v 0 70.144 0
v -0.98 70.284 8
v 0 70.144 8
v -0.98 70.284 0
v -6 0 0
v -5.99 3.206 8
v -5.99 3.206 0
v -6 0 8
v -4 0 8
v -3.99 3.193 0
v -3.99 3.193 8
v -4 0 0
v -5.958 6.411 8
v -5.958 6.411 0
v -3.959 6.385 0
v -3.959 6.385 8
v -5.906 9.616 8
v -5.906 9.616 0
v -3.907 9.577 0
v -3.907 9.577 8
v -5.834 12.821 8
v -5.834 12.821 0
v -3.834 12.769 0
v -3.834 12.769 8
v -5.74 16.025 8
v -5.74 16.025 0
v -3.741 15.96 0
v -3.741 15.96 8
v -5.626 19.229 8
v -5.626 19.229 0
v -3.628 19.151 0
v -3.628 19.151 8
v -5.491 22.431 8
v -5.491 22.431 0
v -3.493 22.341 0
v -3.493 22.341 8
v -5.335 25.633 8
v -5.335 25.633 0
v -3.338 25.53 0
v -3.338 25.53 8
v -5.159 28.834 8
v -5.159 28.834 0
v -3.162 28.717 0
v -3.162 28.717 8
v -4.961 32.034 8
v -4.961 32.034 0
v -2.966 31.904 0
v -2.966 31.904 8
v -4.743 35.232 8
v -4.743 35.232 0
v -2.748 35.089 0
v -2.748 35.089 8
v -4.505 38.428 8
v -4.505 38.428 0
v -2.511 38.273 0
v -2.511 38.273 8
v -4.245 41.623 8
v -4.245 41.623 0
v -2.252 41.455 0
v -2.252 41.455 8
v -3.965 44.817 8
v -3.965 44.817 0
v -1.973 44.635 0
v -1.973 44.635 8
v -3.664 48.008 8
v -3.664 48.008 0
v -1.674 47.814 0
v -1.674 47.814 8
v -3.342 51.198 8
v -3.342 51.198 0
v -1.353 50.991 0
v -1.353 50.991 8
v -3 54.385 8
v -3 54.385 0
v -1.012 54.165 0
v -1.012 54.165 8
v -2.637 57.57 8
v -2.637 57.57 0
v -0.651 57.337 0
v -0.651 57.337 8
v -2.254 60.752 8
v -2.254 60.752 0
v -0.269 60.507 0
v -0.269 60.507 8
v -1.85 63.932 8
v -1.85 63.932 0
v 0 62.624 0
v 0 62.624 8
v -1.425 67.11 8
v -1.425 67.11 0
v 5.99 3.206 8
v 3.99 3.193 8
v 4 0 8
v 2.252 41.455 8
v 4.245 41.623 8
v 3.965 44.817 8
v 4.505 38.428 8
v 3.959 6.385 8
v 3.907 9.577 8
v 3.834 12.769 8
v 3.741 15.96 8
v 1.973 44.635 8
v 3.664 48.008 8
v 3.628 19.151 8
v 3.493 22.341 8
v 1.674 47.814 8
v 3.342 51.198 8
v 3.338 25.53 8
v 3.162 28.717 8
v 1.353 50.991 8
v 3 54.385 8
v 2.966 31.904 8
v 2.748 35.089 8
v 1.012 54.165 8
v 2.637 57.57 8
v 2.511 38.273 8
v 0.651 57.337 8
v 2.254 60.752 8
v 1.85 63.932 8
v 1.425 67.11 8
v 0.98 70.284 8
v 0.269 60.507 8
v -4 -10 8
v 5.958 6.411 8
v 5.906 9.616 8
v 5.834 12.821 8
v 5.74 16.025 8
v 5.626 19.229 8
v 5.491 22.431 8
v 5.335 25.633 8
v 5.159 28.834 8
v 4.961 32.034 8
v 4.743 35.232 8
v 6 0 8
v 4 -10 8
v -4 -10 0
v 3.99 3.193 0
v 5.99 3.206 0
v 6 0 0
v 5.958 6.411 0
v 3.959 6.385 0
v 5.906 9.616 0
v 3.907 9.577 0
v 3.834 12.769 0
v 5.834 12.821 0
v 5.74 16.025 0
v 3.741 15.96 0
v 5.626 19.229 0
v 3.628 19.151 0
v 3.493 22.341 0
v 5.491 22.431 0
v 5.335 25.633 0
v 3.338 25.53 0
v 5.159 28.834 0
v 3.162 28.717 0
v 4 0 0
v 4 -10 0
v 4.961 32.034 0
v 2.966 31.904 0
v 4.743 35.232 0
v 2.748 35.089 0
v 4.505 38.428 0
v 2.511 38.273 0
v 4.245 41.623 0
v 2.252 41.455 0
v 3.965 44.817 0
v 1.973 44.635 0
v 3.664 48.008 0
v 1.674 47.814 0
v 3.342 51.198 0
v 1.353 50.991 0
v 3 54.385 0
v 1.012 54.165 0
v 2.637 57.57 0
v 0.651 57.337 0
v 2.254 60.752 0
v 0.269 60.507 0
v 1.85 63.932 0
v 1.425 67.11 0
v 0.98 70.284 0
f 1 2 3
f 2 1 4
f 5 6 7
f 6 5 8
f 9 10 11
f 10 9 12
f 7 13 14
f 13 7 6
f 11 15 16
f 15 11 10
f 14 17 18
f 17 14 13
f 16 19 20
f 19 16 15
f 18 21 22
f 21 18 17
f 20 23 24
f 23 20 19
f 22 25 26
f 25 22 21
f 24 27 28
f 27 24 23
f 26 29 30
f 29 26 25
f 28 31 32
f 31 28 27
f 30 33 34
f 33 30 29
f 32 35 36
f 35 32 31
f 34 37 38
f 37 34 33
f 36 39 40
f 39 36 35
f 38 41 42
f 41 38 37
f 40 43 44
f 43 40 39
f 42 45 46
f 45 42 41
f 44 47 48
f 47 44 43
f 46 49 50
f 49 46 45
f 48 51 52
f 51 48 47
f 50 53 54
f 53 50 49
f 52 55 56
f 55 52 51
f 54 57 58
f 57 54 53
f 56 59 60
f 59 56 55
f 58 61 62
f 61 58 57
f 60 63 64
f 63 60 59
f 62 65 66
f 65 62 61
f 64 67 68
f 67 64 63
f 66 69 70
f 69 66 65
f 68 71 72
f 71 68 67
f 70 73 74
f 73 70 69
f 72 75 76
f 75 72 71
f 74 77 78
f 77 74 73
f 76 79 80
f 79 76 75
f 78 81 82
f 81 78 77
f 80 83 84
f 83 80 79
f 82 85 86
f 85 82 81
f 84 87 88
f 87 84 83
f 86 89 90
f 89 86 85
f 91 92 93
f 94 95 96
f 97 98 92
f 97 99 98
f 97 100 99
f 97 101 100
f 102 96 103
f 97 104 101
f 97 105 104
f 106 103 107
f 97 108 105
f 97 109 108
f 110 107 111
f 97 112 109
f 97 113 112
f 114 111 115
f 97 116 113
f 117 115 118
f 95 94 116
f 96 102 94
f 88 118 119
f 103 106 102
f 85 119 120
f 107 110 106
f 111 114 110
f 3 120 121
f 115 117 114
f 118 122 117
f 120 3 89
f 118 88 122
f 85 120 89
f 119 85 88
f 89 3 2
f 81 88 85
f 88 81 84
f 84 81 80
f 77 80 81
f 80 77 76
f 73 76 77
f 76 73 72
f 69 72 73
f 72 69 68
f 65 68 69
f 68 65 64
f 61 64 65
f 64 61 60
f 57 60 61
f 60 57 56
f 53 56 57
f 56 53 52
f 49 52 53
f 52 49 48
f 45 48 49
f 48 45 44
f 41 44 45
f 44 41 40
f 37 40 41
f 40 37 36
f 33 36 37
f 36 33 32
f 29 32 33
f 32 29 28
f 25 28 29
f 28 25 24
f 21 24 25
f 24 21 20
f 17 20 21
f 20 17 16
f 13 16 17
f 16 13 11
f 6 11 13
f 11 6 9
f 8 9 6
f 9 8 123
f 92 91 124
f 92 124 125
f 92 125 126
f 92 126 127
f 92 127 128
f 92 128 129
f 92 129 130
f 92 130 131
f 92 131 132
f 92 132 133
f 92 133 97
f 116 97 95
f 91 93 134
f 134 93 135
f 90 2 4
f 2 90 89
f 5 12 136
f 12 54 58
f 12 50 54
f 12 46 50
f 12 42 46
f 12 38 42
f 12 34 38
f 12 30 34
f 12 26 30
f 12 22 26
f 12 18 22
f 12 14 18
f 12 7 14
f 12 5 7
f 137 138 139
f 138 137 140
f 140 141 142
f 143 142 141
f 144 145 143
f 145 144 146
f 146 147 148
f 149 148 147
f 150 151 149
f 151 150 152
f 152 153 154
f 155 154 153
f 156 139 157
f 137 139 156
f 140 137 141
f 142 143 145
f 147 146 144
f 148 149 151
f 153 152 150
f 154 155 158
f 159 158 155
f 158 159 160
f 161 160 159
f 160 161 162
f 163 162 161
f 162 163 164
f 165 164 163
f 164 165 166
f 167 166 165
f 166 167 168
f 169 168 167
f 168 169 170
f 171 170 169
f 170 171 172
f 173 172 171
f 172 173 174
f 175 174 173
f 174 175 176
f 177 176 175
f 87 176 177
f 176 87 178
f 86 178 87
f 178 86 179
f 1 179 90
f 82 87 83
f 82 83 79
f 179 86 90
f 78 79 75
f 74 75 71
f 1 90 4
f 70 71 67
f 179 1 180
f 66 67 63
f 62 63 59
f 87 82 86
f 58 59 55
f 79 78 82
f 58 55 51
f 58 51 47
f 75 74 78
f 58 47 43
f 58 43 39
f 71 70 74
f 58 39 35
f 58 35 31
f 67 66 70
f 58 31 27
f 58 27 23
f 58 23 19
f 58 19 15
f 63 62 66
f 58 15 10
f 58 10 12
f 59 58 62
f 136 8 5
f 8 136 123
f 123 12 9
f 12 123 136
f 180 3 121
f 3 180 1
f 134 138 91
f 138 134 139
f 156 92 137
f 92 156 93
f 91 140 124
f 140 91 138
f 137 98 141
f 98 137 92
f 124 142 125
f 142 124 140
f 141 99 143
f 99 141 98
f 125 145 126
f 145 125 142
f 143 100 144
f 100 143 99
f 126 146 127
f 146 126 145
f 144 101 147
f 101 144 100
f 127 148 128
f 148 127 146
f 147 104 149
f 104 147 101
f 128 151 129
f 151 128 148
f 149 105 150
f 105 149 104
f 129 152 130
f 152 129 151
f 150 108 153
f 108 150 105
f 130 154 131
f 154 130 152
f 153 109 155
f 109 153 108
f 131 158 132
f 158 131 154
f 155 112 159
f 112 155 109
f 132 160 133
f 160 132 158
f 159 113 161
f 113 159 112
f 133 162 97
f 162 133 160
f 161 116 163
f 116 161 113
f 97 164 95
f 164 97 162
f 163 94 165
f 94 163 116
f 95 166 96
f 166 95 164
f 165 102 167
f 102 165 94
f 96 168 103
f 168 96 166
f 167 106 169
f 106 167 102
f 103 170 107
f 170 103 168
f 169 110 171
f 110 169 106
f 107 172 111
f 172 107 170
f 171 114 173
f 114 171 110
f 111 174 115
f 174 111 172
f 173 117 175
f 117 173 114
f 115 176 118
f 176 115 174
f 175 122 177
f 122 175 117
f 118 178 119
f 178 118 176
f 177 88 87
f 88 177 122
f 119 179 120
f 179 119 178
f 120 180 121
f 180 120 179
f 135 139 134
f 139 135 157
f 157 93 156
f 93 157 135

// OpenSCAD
$fn=1000;
width=8;
length=80;
thick=2;
mouth=10;
tip_length=10;

module tip() {
    translate([(mouth-thick)/2,0,0])
    linear_extrude(width)
    polygon([[0,0], [0,-tip_length], [thick, 0]]);
}

module arm(width=width, length=length, thick=thick, mouth=mouth) {
    m = mouth/2;
    radius=(length^2 + m^2)/mouth;
    angle=asin(length/radius);
    translate([-radius*cos(angle)-thick/2, 0, 0])
    rotate_extrude(angle = angle)
    translate([radius, 0, 0])
        square([thick, width], center = false);
}

union(){
    arm(width, length-tip_length, thick, mouth);
    tip();
    
    mirror([1, 0, 0]) {
        arm(width, length-tip_length, thick, mouth);
        tip();
    }
}
